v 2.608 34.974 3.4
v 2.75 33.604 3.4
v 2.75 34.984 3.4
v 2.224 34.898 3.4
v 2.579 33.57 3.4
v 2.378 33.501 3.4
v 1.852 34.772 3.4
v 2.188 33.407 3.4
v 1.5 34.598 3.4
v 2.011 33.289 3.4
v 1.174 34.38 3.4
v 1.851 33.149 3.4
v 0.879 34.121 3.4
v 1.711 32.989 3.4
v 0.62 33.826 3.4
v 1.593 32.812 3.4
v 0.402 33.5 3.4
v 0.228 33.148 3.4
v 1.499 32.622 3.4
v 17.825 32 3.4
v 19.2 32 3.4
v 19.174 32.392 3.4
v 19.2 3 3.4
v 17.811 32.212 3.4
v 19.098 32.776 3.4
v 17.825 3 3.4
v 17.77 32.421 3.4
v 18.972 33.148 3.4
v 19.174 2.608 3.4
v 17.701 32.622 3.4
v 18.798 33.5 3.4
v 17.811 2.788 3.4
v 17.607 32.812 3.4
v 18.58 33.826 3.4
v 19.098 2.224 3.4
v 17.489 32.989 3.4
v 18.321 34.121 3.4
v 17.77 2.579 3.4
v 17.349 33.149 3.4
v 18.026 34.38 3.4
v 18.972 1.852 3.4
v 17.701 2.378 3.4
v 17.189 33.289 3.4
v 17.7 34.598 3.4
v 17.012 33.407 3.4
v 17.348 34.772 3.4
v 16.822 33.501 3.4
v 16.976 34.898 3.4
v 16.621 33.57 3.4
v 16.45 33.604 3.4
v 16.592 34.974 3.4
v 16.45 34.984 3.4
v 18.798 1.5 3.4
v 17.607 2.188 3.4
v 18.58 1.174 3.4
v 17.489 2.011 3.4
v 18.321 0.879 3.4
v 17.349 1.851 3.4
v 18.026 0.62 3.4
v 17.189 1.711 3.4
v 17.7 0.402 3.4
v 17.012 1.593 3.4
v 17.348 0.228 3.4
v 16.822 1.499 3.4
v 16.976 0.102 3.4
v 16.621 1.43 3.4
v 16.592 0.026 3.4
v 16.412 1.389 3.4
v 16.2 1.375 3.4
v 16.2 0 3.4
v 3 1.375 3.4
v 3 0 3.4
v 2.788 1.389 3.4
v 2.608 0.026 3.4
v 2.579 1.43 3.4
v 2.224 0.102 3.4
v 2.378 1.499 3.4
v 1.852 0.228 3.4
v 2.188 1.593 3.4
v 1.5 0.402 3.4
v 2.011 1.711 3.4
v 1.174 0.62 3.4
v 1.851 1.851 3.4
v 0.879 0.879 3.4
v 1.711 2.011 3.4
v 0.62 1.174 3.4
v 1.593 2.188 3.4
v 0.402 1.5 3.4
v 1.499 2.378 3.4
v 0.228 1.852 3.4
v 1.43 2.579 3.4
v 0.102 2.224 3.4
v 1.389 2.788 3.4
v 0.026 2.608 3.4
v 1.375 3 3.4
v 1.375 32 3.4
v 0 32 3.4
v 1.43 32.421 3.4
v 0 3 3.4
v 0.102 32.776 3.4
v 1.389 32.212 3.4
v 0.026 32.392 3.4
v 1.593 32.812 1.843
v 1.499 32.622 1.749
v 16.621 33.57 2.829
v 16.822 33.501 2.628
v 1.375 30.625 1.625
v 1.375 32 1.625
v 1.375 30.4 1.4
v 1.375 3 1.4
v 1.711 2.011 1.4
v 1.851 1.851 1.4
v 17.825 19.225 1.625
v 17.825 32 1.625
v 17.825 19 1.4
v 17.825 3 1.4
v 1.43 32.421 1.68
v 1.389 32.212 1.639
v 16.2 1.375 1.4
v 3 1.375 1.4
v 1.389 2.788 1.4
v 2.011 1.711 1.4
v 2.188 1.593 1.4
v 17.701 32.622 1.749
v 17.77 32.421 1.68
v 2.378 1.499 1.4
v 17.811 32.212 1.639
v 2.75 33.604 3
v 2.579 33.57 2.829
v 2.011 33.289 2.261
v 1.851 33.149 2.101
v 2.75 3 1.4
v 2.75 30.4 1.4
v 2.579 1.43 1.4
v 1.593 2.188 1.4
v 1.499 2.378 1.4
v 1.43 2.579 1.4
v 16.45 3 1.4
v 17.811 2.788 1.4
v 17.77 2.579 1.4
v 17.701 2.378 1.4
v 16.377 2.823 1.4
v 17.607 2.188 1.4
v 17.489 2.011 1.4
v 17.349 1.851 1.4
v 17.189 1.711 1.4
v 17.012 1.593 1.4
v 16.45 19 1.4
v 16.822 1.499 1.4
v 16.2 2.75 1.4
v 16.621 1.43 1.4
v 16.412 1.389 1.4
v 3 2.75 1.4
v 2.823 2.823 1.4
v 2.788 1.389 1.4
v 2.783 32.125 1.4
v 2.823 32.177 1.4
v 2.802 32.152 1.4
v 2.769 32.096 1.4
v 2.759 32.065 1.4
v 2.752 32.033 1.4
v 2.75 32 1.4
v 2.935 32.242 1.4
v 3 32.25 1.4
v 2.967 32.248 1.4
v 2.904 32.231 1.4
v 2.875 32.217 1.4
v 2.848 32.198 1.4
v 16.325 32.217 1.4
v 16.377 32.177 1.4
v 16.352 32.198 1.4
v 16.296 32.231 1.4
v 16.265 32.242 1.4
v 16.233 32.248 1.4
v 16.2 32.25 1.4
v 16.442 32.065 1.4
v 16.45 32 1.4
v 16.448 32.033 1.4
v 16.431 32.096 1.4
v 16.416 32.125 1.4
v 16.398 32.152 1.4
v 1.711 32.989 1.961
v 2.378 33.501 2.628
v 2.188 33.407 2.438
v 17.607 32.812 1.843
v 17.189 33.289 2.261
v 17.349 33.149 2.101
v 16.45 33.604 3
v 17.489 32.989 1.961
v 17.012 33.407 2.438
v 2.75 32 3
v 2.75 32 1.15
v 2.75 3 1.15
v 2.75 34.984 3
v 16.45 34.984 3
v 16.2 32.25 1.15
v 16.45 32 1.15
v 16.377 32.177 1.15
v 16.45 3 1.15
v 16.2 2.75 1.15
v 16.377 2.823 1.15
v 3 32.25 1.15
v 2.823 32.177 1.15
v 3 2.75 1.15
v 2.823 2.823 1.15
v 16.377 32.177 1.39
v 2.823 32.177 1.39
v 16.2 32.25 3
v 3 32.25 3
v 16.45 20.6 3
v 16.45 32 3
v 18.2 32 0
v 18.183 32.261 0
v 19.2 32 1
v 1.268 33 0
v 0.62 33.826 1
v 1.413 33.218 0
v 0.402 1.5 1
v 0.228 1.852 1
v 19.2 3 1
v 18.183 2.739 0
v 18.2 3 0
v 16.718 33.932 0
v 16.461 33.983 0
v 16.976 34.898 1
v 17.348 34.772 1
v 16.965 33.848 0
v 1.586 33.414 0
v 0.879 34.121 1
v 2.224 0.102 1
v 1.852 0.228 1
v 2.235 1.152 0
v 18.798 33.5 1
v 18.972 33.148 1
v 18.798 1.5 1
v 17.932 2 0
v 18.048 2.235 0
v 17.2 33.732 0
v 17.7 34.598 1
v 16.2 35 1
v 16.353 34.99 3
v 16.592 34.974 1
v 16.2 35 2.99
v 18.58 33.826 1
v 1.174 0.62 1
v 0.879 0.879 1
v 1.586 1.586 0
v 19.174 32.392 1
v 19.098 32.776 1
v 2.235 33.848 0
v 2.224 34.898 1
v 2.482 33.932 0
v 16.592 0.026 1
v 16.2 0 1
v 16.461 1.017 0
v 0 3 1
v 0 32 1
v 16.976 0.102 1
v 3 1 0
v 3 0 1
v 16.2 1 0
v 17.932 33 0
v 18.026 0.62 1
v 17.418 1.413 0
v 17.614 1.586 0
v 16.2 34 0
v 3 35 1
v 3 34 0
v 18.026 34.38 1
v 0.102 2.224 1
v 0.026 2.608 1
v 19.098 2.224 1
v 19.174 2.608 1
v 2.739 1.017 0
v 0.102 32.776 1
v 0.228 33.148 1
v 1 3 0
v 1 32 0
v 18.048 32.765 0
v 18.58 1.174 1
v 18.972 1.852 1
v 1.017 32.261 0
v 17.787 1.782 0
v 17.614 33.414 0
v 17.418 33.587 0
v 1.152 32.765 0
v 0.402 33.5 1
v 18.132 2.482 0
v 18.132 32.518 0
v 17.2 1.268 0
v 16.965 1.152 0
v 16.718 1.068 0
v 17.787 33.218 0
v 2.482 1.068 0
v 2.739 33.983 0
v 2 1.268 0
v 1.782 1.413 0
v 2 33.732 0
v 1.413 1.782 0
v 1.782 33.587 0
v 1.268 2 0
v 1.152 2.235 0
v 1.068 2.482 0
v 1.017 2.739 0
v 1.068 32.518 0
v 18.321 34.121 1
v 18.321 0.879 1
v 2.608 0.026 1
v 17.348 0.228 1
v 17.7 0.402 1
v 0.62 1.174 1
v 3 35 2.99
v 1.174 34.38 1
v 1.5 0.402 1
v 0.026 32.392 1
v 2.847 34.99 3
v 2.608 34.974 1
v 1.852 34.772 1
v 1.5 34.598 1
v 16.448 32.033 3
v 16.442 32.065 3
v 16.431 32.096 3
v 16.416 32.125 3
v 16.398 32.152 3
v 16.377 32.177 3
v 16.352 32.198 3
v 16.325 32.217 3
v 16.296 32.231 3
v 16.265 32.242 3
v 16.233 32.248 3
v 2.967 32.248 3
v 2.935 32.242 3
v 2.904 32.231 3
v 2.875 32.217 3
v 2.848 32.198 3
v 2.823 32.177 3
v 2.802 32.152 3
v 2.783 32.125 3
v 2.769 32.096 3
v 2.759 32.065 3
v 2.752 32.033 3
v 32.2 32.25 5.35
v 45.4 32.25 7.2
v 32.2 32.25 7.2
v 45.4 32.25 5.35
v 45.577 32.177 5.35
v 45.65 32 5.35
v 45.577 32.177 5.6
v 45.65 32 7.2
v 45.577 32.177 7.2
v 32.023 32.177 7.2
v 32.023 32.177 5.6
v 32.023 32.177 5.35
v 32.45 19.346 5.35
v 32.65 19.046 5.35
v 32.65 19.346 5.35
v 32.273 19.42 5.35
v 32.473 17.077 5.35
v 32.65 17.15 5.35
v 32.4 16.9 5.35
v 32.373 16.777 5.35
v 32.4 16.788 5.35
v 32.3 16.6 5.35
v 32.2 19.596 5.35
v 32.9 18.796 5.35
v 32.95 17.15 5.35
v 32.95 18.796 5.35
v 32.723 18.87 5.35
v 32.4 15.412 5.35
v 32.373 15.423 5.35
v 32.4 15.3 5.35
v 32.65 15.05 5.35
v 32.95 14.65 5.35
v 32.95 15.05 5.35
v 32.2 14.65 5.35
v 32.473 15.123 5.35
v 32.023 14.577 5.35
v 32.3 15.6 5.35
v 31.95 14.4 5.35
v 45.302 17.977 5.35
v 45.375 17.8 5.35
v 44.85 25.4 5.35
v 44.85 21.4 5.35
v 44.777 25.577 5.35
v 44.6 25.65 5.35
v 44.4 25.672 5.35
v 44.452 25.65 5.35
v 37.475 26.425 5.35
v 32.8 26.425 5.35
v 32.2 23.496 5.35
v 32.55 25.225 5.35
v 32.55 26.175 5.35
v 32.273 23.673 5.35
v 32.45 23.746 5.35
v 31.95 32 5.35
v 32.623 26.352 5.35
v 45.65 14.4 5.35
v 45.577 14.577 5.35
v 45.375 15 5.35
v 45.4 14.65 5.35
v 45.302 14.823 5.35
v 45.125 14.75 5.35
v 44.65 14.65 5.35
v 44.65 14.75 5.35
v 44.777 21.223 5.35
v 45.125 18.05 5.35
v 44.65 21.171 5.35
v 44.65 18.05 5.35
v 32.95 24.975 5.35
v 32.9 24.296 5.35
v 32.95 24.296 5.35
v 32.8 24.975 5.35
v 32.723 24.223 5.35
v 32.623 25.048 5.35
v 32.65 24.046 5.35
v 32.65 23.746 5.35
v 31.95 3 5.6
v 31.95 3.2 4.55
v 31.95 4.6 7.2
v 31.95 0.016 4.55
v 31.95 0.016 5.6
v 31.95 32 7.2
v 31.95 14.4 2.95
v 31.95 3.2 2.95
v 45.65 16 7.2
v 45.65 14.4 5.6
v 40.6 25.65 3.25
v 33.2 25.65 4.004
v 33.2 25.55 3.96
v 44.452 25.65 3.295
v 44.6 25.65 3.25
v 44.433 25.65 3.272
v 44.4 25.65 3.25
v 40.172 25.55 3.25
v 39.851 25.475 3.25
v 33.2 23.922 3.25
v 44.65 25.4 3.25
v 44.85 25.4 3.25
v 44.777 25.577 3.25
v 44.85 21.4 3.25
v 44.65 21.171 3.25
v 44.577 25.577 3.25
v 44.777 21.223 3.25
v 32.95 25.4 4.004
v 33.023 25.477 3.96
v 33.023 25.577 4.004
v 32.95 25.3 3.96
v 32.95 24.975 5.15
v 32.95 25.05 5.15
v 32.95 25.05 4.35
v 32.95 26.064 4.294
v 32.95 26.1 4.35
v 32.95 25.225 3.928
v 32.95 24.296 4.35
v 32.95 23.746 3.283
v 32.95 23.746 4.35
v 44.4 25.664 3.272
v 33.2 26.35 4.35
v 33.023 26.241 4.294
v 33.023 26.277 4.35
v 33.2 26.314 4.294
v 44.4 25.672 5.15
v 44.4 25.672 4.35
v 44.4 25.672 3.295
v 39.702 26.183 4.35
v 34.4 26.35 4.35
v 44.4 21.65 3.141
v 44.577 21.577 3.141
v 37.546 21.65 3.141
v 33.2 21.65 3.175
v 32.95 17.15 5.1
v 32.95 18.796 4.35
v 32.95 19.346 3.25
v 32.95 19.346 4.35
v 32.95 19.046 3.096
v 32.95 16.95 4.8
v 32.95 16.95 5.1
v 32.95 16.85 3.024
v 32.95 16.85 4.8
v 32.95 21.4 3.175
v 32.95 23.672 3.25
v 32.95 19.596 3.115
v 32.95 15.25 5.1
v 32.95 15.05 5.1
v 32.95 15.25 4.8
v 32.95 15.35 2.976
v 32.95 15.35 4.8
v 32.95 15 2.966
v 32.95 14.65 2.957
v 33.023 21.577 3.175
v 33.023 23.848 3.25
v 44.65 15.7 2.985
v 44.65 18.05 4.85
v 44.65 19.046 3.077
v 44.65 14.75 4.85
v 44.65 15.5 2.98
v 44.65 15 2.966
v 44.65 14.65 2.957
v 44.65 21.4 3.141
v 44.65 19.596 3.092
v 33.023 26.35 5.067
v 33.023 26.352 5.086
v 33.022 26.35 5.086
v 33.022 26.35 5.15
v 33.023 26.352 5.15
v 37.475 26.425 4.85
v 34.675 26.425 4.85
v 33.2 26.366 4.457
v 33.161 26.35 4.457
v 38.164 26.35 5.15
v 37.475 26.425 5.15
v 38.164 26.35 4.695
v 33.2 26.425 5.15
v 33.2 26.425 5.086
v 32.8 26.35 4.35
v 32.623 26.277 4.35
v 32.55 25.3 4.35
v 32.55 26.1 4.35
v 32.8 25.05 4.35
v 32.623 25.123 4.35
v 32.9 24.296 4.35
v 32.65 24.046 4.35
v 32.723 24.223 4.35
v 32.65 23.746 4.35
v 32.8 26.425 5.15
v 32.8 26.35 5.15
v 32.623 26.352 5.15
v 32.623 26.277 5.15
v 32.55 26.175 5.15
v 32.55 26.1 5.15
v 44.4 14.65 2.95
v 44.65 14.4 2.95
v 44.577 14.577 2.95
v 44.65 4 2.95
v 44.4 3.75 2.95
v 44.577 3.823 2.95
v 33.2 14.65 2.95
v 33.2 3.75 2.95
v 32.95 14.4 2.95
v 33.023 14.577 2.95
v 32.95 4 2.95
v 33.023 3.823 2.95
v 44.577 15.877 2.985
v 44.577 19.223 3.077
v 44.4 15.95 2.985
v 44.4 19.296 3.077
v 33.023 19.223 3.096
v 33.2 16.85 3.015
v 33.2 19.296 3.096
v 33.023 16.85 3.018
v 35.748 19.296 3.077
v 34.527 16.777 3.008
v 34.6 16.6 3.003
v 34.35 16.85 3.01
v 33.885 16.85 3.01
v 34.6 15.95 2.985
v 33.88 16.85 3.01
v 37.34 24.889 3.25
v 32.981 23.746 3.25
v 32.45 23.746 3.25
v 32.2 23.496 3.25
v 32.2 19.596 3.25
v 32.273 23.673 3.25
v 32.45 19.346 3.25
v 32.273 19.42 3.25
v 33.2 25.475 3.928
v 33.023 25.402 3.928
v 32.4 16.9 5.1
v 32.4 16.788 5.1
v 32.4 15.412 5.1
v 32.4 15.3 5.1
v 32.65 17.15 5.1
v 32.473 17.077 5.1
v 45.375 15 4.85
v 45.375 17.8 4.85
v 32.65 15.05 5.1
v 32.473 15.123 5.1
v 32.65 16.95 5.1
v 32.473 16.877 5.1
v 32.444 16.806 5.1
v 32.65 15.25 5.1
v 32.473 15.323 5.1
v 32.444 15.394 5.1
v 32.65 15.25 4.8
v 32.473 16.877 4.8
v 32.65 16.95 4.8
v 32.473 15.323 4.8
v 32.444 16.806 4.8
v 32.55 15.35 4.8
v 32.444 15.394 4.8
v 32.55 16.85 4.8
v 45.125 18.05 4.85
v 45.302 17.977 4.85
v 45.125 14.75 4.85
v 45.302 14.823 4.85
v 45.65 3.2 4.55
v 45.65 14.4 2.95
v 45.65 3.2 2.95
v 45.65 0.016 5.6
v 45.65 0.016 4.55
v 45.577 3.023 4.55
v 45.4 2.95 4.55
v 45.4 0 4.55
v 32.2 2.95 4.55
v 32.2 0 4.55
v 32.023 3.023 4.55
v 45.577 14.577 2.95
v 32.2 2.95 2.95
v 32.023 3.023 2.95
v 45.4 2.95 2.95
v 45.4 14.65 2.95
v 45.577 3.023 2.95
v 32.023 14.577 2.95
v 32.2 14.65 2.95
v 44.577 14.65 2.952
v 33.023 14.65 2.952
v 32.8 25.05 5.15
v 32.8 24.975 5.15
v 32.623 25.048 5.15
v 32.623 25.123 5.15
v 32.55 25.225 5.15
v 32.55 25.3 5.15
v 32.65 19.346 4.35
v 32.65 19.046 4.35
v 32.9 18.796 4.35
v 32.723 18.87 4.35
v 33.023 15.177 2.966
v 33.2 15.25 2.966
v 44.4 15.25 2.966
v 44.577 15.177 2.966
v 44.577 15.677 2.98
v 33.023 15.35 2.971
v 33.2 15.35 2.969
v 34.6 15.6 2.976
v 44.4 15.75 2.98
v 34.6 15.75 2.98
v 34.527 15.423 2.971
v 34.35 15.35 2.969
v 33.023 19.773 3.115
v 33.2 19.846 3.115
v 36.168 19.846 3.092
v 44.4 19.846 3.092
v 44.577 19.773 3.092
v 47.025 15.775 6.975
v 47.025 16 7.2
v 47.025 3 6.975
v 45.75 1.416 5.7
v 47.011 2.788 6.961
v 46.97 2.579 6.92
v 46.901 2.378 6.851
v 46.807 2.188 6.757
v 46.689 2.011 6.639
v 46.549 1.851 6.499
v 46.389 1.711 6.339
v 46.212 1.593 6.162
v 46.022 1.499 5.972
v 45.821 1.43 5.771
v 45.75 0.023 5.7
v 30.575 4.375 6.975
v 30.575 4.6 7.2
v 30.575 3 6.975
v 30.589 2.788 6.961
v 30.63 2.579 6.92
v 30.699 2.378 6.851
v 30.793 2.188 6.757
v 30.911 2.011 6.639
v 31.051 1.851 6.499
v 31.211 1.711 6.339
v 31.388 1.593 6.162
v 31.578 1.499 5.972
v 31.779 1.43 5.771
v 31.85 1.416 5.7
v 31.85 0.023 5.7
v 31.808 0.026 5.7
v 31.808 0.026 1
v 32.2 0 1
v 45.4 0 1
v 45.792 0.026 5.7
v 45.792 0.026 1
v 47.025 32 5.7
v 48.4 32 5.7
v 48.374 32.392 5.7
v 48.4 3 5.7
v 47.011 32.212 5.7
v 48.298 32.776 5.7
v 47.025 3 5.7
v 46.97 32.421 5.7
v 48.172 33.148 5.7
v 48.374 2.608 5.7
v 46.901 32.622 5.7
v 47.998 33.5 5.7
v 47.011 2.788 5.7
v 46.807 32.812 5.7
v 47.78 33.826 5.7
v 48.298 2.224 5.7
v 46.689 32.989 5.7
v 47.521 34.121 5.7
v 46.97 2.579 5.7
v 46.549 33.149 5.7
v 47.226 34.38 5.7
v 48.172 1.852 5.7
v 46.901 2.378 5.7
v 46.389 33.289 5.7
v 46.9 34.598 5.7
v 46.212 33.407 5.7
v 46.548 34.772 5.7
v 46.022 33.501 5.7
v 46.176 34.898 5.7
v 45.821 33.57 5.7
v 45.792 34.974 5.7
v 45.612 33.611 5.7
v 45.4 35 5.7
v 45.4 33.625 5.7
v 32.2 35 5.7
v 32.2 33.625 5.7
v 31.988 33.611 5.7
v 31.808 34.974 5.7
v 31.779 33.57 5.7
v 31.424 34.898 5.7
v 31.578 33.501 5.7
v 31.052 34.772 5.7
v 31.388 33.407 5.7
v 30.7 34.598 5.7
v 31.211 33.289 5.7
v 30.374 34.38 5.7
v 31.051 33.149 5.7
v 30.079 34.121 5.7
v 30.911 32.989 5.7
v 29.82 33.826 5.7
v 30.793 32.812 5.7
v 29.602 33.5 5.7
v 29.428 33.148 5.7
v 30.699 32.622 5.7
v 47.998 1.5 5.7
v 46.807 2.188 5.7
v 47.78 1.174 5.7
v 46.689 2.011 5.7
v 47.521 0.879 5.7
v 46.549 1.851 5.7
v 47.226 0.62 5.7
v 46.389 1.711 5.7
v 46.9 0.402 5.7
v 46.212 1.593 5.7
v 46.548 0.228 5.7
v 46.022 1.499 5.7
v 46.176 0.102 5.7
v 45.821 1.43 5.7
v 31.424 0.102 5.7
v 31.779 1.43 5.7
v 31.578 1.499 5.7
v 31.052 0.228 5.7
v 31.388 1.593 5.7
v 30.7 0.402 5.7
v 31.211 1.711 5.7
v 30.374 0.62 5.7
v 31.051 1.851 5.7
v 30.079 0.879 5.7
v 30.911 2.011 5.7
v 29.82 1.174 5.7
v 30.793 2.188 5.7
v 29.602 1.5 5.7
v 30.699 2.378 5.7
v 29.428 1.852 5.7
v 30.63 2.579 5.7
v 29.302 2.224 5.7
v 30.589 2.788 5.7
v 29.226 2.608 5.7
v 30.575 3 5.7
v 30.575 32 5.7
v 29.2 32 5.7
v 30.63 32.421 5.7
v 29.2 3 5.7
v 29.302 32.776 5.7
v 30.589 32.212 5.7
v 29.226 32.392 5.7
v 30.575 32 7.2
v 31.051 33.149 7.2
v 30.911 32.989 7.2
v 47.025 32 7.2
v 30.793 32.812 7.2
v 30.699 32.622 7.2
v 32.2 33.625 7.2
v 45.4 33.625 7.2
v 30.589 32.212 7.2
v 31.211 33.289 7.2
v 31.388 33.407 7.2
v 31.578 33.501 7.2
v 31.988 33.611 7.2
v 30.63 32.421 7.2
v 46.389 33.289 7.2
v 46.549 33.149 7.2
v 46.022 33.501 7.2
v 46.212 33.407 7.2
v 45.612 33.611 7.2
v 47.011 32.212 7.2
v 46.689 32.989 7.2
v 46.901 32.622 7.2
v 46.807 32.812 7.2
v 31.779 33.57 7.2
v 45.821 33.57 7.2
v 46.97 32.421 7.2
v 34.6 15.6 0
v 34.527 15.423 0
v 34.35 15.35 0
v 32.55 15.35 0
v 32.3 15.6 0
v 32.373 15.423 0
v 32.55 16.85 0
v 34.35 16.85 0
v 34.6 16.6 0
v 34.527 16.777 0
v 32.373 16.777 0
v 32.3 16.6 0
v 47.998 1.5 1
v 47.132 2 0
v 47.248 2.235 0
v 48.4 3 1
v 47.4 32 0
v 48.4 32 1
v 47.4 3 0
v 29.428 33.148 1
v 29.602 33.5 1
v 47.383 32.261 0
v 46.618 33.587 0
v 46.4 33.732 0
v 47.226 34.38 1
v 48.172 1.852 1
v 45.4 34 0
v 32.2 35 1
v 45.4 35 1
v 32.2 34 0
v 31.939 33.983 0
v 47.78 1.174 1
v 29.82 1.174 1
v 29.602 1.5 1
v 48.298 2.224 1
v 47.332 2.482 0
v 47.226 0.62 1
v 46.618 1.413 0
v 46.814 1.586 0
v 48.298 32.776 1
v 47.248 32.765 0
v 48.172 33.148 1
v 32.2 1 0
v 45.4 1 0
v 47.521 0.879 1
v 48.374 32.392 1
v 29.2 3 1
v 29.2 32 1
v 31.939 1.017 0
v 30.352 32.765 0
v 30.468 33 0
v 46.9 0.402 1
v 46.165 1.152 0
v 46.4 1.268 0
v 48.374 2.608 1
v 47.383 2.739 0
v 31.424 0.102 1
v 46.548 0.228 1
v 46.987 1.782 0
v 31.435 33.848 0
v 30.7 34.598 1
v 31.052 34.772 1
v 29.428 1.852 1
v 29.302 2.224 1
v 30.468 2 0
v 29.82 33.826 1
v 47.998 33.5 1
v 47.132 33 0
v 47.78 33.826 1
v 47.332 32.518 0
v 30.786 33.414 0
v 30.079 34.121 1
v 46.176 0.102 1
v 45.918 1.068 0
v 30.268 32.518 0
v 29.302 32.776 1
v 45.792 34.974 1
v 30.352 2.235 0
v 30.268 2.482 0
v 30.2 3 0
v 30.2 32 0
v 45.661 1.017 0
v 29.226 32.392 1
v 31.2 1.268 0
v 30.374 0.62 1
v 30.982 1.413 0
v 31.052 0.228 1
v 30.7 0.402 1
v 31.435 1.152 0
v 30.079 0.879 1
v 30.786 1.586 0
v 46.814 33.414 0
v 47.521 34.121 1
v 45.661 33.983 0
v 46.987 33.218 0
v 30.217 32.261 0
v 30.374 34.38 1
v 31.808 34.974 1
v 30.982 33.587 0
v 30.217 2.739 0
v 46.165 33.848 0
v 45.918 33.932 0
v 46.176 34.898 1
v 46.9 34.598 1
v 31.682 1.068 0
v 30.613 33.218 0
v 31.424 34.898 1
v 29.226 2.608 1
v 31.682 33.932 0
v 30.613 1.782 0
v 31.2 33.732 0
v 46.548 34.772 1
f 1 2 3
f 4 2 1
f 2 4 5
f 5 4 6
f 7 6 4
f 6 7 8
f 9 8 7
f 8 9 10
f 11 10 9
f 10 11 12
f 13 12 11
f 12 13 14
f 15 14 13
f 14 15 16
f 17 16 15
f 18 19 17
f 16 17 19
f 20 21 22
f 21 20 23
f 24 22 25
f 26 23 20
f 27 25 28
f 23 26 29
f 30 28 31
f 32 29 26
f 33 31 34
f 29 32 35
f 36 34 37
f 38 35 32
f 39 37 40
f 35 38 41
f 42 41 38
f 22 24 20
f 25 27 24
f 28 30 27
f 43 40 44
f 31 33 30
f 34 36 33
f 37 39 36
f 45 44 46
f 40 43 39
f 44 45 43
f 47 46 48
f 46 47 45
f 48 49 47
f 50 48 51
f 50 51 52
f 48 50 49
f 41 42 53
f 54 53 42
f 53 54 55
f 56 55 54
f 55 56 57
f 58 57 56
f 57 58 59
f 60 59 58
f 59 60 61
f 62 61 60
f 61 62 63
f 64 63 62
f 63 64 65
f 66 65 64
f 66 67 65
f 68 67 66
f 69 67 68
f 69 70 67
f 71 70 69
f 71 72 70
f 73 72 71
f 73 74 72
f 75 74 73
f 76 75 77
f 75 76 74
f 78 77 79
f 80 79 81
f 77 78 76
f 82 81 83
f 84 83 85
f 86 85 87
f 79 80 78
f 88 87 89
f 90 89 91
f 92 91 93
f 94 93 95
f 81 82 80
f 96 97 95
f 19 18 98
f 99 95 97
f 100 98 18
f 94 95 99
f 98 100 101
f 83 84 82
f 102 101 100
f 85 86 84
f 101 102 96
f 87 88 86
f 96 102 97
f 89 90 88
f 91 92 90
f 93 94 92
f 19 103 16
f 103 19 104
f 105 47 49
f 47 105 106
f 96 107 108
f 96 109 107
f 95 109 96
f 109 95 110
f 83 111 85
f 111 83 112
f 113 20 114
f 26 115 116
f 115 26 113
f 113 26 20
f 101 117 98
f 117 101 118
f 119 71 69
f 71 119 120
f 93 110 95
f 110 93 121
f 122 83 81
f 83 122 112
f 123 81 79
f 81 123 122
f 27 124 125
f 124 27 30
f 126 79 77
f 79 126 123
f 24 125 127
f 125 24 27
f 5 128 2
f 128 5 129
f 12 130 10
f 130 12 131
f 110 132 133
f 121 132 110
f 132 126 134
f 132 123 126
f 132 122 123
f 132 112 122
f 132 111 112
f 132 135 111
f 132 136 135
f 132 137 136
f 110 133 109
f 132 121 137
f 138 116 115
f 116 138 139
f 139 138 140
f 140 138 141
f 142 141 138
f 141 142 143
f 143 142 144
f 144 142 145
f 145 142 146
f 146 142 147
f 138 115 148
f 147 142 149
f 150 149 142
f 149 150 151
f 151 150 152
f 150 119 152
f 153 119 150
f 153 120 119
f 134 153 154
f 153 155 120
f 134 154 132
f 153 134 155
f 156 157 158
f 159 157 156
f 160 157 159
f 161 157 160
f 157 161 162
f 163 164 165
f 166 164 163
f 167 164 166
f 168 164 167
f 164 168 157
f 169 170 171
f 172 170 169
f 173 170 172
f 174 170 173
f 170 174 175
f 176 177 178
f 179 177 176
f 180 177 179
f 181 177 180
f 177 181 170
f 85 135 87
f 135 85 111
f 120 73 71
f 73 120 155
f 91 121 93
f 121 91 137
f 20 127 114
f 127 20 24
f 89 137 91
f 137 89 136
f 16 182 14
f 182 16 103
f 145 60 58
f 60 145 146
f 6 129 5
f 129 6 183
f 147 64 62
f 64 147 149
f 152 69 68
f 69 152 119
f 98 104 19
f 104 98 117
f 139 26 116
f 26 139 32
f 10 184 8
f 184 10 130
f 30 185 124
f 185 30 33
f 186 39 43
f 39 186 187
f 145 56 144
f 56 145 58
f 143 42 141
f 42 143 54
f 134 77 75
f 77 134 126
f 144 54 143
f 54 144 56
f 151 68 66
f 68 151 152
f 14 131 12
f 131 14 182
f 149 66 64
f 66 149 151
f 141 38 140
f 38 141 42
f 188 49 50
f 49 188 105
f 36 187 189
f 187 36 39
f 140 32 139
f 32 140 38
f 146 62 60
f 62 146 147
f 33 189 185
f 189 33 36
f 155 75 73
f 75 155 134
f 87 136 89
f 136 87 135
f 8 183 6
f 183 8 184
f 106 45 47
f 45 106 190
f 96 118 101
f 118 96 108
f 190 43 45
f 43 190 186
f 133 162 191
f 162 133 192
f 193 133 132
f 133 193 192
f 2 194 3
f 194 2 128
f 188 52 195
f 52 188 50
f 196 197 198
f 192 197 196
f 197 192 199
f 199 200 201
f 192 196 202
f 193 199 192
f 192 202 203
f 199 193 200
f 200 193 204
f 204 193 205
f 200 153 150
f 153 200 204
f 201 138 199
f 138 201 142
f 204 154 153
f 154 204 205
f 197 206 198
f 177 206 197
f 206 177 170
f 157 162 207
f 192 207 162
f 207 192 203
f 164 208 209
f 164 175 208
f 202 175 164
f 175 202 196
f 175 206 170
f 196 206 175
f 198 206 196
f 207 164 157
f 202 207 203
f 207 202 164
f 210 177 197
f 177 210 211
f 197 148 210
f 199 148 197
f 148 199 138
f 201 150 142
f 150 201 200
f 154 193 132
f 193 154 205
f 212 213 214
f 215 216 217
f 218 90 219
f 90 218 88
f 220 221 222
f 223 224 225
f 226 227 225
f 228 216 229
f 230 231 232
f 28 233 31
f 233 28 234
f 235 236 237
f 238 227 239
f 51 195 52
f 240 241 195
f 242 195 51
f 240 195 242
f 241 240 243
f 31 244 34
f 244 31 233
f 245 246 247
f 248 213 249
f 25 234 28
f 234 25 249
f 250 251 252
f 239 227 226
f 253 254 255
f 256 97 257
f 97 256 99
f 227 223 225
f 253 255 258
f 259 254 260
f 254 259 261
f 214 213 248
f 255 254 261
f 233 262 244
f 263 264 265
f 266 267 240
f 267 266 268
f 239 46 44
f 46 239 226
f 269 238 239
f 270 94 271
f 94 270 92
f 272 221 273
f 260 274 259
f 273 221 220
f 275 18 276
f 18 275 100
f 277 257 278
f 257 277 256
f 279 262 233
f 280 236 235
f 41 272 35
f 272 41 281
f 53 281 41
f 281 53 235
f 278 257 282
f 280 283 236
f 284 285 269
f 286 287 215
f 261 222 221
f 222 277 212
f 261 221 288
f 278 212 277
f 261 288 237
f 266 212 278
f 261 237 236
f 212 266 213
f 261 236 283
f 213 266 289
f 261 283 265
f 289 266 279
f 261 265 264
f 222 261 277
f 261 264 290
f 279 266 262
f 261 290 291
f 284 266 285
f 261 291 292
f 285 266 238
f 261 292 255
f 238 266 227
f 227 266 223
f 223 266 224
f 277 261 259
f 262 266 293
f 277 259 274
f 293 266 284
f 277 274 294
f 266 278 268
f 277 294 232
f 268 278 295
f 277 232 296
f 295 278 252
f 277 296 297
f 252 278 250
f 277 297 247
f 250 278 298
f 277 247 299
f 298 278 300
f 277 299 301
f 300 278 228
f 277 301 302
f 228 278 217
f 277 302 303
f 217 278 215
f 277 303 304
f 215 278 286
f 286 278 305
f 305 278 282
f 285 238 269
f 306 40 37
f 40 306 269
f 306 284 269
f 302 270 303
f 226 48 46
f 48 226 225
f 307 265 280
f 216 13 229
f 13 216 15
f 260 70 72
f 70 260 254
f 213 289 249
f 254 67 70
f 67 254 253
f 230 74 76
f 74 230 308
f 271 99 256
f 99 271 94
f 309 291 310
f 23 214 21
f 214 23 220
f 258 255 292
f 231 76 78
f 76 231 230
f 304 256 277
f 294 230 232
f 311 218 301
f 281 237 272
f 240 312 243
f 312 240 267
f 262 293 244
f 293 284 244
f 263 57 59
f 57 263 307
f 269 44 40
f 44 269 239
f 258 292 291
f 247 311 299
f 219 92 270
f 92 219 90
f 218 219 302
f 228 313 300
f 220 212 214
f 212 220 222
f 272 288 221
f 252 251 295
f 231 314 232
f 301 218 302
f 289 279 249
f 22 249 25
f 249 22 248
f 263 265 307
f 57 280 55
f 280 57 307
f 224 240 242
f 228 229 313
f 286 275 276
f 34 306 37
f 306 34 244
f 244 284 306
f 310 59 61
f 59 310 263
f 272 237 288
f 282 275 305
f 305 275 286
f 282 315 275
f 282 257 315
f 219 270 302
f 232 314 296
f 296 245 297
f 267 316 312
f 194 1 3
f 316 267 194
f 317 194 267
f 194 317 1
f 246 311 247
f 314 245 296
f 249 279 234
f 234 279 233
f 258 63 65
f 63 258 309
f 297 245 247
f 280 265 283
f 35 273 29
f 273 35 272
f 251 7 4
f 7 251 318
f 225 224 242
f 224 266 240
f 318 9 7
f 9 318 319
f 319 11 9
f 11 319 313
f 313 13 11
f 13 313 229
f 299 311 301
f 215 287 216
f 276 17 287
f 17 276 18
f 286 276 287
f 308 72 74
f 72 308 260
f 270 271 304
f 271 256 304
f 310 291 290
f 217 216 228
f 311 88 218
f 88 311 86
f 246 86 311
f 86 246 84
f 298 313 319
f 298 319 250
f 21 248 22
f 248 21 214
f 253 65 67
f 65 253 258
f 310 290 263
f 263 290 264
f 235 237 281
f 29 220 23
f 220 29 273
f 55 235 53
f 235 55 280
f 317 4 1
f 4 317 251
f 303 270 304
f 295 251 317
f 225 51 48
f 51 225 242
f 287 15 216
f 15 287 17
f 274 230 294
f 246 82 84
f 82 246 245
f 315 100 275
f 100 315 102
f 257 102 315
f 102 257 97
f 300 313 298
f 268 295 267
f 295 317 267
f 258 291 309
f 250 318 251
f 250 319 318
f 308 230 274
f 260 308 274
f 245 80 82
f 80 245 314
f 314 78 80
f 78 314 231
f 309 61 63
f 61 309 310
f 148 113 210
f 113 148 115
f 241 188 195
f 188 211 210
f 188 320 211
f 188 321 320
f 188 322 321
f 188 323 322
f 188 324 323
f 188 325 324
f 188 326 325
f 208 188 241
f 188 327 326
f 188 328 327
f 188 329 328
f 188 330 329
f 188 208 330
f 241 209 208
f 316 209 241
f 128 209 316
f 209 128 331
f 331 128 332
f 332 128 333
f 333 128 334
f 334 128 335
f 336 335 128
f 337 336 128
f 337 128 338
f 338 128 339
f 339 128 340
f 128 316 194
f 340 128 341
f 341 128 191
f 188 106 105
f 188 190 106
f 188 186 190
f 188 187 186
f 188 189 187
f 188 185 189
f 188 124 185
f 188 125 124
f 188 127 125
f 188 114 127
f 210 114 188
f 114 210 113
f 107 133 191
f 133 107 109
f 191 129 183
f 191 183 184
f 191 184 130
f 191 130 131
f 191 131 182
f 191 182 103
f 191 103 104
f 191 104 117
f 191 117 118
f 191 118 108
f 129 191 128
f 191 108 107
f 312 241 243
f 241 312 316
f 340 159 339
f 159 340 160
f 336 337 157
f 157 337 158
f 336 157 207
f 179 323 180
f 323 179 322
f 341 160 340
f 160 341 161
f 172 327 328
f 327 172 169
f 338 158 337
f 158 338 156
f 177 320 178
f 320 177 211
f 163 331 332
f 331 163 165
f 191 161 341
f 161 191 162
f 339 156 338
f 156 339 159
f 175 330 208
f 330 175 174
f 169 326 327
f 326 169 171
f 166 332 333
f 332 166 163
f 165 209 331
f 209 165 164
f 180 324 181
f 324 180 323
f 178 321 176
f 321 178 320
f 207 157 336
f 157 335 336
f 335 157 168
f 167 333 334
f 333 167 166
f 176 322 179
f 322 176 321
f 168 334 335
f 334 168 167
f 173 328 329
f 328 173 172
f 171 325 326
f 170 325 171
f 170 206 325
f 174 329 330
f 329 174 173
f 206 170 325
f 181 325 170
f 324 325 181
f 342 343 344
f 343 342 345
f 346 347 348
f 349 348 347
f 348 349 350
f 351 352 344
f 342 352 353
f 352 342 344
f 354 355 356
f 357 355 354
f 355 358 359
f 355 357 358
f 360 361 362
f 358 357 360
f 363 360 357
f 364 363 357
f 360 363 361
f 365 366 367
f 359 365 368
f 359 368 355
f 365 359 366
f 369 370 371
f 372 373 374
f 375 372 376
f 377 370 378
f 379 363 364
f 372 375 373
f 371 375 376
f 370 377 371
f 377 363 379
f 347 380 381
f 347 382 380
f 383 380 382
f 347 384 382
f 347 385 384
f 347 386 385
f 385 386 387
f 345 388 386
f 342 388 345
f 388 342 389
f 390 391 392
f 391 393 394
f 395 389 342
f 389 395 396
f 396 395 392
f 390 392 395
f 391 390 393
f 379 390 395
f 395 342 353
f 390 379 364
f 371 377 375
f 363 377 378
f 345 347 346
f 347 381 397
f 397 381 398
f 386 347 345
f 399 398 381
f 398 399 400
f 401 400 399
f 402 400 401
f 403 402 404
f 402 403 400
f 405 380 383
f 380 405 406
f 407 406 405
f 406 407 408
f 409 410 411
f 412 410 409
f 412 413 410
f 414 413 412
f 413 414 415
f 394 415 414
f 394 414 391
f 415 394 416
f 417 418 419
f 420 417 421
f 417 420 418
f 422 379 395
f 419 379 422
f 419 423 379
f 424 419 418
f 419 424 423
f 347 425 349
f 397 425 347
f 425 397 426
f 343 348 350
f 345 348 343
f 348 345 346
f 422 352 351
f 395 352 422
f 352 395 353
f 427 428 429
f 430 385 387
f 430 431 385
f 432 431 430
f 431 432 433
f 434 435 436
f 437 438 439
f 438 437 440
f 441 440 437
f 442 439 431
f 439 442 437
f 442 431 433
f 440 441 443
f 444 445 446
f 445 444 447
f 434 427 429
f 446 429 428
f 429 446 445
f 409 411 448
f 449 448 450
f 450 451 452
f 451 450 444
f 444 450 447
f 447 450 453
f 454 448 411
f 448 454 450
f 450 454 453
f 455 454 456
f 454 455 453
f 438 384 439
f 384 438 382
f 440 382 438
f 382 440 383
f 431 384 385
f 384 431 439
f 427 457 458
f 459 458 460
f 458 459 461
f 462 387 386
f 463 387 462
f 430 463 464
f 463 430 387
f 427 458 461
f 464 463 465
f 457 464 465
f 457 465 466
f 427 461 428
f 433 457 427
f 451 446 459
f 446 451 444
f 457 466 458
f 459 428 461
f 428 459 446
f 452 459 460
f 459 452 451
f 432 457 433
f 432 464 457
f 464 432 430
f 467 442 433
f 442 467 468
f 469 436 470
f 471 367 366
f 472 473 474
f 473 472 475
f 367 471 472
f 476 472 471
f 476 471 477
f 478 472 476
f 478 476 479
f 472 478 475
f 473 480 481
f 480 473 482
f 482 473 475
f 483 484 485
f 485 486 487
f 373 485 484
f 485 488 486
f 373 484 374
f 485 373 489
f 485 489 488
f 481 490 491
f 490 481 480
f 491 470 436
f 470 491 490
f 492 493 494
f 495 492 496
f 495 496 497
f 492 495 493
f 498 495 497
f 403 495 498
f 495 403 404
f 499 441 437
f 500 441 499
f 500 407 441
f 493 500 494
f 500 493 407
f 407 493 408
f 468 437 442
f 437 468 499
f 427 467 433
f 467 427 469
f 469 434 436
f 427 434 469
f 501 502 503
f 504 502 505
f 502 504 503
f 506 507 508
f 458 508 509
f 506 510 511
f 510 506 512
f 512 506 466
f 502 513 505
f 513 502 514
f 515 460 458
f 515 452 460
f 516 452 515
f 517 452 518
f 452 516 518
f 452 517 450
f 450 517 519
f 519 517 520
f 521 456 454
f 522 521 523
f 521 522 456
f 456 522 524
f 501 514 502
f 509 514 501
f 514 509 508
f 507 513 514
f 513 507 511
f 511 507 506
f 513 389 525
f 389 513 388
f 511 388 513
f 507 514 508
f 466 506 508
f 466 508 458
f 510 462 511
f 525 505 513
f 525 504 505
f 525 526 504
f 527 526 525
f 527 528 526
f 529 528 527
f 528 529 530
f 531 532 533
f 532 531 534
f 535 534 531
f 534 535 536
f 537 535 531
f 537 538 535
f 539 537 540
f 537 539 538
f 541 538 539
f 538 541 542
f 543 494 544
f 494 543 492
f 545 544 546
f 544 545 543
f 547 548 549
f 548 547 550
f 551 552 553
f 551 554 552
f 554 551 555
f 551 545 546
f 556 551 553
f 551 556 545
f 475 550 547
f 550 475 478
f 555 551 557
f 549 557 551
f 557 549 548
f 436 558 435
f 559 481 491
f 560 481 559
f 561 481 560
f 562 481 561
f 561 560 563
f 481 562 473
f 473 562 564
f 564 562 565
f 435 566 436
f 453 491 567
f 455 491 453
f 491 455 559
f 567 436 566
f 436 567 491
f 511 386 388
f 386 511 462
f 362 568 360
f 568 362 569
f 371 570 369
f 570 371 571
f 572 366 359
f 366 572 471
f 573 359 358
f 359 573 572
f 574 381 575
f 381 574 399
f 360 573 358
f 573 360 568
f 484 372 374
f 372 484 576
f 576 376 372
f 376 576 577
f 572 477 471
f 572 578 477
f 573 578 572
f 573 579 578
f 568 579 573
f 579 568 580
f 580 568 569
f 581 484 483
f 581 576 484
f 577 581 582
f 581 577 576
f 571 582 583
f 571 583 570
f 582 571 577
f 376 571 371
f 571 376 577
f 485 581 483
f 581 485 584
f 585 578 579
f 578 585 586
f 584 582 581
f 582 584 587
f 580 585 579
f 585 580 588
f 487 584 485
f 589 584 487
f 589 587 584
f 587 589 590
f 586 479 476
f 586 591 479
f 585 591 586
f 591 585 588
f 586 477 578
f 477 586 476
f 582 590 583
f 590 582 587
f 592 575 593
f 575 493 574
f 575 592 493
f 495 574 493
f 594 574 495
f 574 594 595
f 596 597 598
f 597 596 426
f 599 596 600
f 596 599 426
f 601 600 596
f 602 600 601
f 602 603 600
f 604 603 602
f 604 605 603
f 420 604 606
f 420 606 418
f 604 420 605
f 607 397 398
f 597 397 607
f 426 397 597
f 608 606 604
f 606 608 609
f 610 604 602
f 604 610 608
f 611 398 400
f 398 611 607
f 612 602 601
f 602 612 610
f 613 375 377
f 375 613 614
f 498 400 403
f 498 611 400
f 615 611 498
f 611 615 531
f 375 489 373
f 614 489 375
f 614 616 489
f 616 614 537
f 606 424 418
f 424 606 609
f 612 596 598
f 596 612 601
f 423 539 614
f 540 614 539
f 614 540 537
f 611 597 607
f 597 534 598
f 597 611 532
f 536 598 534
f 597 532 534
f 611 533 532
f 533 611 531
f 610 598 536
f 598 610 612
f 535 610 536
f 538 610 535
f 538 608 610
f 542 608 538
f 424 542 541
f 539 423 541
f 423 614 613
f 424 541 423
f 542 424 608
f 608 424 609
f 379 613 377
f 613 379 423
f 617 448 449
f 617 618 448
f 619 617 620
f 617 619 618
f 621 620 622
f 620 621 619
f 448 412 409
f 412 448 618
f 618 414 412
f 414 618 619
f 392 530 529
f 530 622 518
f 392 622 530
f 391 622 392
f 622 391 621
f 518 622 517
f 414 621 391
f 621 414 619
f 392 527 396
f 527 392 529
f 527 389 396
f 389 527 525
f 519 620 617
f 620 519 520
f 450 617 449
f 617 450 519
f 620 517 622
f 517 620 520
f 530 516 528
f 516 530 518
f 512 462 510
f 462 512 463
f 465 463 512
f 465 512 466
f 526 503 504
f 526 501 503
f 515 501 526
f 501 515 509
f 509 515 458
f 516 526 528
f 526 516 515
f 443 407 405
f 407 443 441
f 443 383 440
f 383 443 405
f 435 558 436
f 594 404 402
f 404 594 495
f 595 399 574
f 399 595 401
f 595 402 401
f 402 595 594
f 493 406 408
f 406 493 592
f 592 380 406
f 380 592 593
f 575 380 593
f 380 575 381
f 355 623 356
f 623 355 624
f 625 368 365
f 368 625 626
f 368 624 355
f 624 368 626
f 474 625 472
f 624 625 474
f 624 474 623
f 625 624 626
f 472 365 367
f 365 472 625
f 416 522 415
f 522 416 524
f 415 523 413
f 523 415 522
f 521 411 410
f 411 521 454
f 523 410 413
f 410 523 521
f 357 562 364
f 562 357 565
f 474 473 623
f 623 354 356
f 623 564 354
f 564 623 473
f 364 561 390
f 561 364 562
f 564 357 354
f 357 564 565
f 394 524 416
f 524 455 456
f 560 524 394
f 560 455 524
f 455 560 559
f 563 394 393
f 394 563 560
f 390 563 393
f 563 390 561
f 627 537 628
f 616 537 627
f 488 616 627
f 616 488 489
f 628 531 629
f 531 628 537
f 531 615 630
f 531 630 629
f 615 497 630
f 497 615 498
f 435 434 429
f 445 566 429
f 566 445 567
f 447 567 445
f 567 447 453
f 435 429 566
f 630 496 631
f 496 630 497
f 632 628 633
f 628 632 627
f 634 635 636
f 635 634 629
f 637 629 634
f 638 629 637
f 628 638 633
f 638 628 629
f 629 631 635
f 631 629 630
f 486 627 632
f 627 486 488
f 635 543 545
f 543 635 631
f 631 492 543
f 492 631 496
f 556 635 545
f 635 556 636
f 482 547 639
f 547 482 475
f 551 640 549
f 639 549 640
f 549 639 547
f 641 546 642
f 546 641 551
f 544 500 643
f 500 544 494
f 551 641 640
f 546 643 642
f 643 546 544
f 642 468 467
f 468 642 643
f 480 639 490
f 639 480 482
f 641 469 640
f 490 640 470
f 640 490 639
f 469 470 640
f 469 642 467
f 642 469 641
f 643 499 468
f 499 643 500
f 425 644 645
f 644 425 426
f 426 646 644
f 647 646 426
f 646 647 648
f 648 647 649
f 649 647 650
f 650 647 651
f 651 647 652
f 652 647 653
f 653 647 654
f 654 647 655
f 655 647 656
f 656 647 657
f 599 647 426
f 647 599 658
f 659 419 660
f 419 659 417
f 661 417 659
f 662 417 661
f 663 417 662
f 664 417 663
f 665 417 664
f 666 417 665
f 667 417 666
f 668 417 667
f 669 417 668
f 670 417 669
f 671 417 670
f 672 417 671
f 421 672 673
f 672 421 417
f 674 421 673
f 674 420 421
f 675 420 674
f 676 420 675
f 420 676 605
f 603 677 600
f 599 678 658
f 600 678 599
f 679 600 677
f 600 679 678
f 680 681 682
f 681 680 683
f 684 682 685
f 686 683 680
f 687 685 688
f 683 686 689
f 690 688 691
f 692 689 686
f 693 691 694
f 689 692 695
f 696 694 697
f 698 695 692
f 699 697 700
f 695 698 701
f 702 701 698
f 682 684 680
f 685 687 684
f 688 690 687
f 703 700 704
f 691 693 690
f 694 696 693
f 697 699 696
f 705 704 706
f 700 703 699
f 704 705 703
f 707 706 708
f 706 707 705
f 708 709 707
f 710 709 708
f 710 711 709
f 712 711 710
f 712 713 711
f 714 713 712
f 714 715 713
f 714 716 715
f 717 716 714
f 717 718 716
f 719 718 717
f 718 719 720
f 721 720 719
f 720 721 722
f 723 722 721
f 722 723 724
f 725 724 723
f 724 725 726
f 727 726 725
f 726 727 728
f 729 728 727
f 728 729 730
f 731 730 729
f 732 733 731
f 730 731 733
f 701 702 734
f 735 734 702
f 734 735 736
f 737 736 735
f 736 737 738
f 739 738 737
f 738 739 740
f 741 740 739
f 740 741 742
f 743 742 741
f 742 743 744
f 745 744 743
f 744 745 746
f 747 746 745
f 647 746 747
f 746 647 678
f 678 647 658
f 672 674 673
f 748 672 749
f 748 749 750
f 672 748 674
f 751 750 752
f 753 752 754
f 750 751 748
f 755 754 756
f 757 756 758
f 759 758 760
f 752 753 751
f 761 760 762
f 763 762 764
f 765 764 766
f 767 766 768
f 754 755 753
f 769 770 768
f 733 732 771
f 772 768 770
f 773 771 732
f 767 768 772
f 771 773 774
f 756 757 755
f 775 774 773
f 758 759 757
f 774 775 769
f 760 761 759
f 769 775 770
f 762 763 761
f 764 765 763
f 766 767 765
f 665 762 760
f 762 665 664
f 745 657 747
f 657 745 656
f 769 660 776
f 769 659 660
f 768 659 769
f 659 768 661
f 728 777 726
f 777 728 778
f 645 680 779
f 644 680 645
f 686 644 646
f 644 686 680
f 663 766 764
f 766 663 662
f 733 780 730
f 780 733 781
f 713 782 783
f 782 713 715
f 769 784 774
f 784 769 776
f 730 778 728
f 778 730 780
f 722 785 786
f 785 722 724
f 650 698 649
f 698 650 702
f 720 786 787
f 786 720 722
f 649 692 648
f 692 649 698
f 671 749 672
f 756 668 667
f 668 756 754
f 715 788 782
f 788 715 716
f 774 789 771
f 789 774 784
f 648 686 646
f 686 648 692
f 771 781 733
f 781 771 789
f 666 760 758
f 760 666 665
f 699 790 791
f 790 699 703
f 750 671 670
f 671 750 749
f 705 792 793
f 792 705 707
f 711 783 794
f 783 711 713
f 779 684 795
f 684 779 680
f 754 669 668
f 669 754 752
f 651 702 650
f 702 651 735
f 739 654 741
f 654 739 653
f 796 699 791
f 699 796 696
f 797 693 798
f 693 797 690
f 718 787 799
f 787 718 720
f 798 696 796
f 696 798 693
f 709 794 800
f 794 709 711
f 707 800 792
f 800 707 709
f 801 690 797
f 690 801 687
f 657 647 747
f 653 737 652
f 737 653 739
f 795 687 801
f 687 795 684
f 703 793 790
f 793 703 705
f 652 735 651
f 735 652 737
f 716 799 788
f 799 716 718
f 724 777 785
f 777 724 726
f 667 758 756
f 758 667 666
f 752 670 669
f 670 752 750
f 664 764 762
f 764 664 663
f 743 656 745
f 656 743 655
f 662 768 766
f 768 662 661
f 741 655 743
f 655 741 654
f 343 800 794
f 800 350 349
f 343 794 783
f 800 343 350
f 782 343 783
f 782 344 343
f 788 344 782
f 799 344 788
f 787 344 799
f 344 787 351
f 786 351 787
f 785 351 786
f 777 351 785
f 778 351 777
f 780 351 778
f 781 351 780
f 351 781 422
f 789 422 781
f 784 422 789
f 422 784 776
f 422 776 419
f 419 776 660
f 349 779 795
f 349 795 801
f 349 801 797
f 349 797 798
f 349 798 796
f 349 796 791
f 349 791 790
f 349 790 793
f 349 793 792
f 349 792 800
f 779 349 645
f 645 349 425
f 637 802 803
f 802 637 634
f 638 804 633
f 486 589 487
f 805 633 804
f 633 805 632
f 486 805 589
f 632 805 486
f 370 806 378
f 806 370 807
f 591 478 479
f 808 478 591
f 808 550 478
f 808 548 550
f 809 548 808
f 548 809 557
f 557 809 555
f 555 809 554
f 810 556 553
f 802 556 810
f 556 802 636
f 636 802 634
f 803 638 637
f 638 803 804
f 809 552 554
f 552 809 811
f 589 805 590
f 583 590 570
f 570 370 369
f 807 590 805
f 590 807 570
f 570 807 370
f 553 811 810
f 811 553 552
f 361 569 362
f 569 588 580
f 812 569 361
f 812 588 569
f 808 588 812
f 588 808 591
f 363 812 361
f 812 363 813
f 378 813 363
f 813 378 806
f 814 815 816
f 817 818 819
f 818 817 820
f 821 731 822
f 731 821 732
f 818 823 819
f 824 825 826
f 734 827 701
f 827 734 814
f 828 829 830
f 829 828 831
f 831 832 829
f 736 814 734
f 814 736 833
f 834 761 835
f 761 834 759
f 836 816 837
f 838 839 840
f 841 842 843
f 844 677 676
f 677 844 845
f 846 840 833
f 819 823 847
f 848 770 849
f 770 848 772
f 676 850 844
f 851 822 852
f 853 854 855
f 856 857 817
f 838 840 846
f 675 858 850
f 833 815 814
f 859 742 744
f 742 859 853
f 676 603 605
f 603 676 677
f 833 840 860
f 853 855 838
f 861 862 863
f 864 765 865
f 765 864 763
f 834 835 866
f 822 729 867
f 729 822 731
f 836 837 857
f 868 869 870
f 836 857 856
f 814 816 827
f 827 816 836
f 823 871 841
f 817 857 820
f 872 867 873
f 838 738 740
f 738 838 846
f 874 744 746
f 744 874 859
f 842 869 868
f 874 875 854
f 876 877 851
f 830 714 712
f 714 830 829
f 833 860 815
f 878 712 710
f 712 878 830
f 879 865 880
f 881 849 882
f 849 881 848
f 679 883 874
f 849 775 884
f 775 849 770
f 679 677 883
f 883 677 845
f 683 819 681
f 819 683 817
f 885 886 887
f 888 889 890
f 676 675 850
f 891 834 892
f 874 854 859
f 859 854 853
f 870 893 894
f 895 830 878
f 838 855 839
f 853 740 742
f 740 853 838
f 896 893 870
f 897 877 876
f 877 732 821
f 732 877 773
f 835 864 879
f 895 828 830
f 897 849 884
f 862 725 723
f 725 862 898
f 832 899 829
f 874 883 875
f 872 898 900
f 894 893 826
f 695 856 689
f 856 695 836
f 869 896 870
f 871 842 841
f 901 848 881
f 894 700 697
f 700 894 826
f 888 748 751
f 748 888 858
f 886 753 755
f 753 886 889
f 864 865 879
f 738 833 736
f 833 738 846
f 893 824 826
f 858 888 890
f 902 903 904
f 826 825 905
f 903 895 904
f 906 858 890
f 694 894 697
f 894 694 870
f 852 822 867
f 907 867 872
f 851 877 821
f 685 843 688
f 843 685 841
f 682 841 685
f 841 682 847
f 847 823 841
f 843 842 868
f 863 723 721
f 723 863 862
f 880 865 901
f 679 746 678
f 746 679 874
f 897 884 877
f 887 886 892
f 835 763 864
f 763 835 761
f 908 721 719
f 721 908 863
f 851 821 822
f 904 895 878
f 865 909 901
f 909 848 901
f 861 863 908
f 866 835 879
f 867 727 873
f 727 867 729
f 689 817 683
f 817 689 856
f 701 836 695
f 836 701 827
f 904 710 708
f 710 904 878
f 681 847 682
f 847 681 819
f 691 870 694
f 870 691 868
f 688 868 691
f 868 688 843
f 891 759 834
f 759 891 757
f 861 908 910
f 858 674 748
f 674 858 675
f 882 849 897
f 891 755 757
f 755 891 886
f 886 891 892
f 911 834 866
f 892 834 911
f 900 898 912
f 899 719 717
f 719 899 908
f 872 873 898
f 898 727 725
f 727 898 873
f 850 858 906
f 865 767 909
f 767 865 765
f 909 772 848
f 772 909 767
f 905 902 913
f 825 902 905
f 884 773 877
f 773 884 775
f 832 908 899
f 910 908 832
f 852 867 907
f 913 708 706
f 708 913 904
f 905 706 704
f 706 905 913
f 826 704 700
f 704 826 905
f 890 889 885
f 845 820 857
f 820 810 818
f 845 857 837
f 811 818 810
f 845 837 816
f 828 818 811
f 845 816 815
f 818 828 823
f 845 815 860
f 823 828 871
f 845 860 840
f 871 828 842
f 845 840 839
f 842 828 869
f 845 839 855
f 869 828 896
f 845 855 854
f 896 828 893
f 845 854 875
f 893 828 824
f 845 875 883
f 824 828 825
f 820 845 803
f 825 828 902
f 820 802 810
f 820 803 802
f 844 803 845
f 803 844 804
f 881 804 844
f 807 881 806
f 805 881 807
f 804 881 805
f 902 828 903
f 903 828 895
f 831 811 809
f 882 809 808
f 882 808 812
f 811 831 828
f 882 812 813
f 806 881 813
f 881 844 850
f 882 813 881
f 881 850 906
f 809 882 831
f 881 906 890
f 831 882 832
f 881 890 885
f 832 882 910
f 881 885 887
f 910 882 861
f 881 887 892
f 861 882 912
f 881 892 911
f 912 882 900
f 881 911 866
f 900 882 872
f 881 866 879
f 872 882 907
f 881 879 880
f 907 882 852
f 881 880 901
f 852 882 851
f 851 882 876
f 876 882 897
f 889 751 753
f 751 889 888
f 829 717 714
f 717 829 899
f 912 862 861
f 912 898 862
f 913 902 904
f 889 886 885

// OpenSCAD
// Generated case design for PCB/Keypad2/Keypad2.kicad_pcb
// By https://github.com/revk/PCBCase
// Generated 2023-01-11 11:08:48
// title:	Generic ESP32 with GPIO
// date:	${DATE}
// rev:	5
// company:	Adrian Kennard Andrews & Arnold Ltd
// comment:	www.me.uk
// comment:	@TheRealRevK
//

// Globals
margin=0.500000;
overlap=2.000000;
lip=0.000000;
casebase=1.400000;
casetop=5.600000;
casewall=3.000000;
fit=0.000000;
edge=1.000000;
pcbthickness=1.600000;
nohull=false;
hullcap=1.000000;
hulledge=1.000000;
useredge=false;

module pcb(h=pcbthickness,r=0){linear_extrude(height=h)offset(r=r)polygon(points=[[0.000000,0.000000],[0.000000,29.000000],[13.200000,29.000000],[13.200000,0.000000]],paths=[[0,1,2,3]]);}

module outline(h=pcbthickness,r=0){linear_extrude(height=h)offset(r=r)polygon(points=[[0.000000,0.000000],[0.000000,29.000000],[13.200000,29.000000],[13.200000,0.000000]],paths=[[0,1,2,3]]);}
spacing=29.200000;
pcbwidth=13.200000;
pcblength=29.000000;
// Populated PCB
module board(pushed=false,hulled=false){
translate([6.850000,7.100000,1.600000])m0(pushed,hulled); // RevK:C_0805_ C_0805_2012Metric (back)
translate([3.875000,6.300000,1.600000])rotate([0,0,180.000000])m1(pushed,hulled); // RevK:R_0603 R_0603_1608Metric (back)
translate([10.150000,14.600000,1.600000])m2(pushed,hulled); // RevK:C_0603_ C_0603_1608Metric (back)
translate([5.400000,15.900000,1.600000])rotate([0,0,90.000000])m1(pushed,hulled); // RevK:R_0603 R_0603_1608Metric (back)
translate([6.600000,23.400000,1.600000])translate([0.000000,2.500000,0.000000])rotate([90.000000,-0.000000,-0.000000])m3(pushed,hulled); // RevK:ESP32-PICO-MINI-02 ESP32-PICO-MINI-02 (back)
translate([6.850000,13.350000,1.600000])m0(pushed,hulled); // RevK:C_0805_ C_0805_2012Metric (back)
// Missing RevK:Molex_MiniSPOX_H4V 22035045
translate([10.550000,16.400000,1.600000])m1(pushed,hulled); // RevK:R_0603 R_0603_1608Metric (back)
translate([2.700000,10.453494,1.600000])rotate([0,0,-90.000000])m5(pushed,hulled); // Package_SO:SO-8_3.9x4.9mm_P1.27mm SOIC-8_3.9x4.9mm_P1.27mm (back)
translate([7.230000,10.220000,1.600000])rotate([0,0,-90.000000])m6(pushed,hulled); // RevK:D_1206_ D_1206_3216Metric (back)
translate([1.250000,15.900000,1.600000])rotate([0,0,90.000000])translate([0.000000,-0.400000,0.000000])m7(pushed,hulled); // RevK:LED-RGB-1.6x1.6 LED_0603_1608Metric (back)
translate([1.250000,15.900000,1.600000])rotate([0,0,90.000000])translate([0.000000,0.400000,0.000000])m7(pushed,hulled); // RevK:LED-RGB-1.6x1.6 LED_0603_1608Metric (back)
translate([10.400000,12.500000,1.600000])rotate([0,0,-90.000000])rotate([-0.000000,-0.000000,-90.000000])m8(pushed,hulled); // RevK:SOT-23-Thin-6-Reg SOT-23-6 (back)
translate([12.450000,15.600000,1.600000])rotate([0,0,-90.000000])m1(pushed,hulled); // RevK:R_0603 R_0603_1608Metric (back)
translate([4.150000,15.900000,1.600000])rotate([0,0,90.000000])m1(pushed,hulled); // RevK:R_0603 R_0603_1608Metric (back)
translate([1.400000,6.300000,1.600000])m2(pushed,hulled); // RevK:C_0603_ C_0603_1608Metric (back)
translate([2.900000,15.900000,1.600000])rotate([0,0,90.000000])m1(pushed,hulled); // RevK:R_0603 R_0603_1608Metric (back)
translate([6.600000,15.900000,1.600000])rotate([0,0,-90.000000])m2(pushed,hulled); // RevK:C_0603_ C_0603_1608Metric (back)
translate([10.400000,8.600000,1.600000])rotate([0,0,90.000000])rotate([-0.000000,-0.000000,-90.000000])m9(pushed,hulled); // RevK:L_4x4_ TYA4020 (back)
}

module b(cx,cy,z,w,l,h){translate([cx-w/2,cy-l/2,z])cube([w,l,h]);}
module m0(pushed=false,hulled=false)
{ // RevK:C_0805_ C_0805_2012Metric
b(0,0,0,2,1.45,0.2); // Pad size
b(0,0,0,2,1.2,1); // Chip
}

module m1(pushed=false,hulled=false)
{ // RevK:R_0603 R_0603_1608Metric
b(0,0,0,2.8,0.95,0.5); // Pad size
}

module m2(pushed=false,hulled=false)
{ // RevK:C_0603_ C_0603_1608Metric
b(0,0,0,1.6,0.95,0.2); // Pad size
b(0,0,0,1.6,0.8,1); // Chip
}

module m3(pushed=false,hulled=false)
{ // RevK:ESP32-PICO-MINI-02 ESP32-PICO-MINI-02
rotate([-90,0,0])
translate([-13.2/2,-16.6/2,0])
{
	if(!hulled)cube([13.2,16.6,0.8]);
	cube([13.2,11.2,2.4]);
}
}

module m5(pushed=false,hulled=false)
{ // Package_SO:SO-8_3.9x4.9mm_P1.27mm SOIC-8_3.9x4.9mm_P1.27mm
b(0,0,0,5,4,1);
b(0,0,0,3.9,4.9,2.1);
}

module m6(pushed=false,hulled=false)
{ // RevK:D_1206_ D_1206_3216Metric
b(0,0,0,4.4,1.75,1.2); // Pad size
}

module m7(pushed=false,hulled=false)
{ // RevK:LED-RGB-1.6x1.6 LED_0603_1608Metric
b(0,0,0,1.6,0.8,0.25);
b(0,0,0,1.2,0.8,0.55);
b(0,0,0,0.8,0.8,0.95);
if(!hulled&&pushed)b(0,0,0,1,1,20);
}

module m8(pushed=false,hulled=false)
{ // RevK:SOT-23-Thin-6-Reg SOT-23-6
b(0,0,0,3.05,3.05,0.5);
b(0,0,0,1.45,3.05,1.1);
}

module m9(pushed=false,hulled=false)
{ // RevK:L_4x4_ TYA4020
b(0,0,0,4,4,2.1);
}

height=casebase+pcbthickness+casetop;
$fn=48;

module boardh(pushed=false)
{ // Board with hulled parts
	union()
	{
		if(!nohull)intersection()
		{
			translate([0,0,hullcap-casebase])outline(casebase+pcbthickness+casetop-hullcap*2,-hulledge);
			hull()board(pushed,true);
		}
		board(pushed,false);
		pcb();
	}
}

module boardf()
{ // This is the board, but stretched up to make a push out in from the front
	render()
	{
		intersection()
		{
			translate([-casewall-1,-casewall-1,-casebase-1]) cube([pcbwidth+casewall*2+2,pcblength+casewall*2+2,height+2]);
			union()
			{
				minkowski()
				{
					boardh(true);
					cylinder(h=height+100,d=margin,$fn=8);
				}
				board(false,false);
			}
		}
	}
}

module boardb()
{ // This is the board, but stretched down to make a push out in from the back
	render()
	{
		intersection()
		{
			translate([-casewall-1,-casewall-1,-casebase-1]) cube([pcbwidth+casewall*2+2,pcblength+casewall*2+2,height+2]);
			union()
			{
				minkowski()
				{
					boardh(true);
					translate([0,0,-height-100])
					cylinder(h=height+100,d=margin,$fn=8);
				}
				board(false,false);
			}
		}
	}
}

module boardm()
{
	render()
	{
 		minkowski()
 		{
			translate([0,0,-margin/2])cylinder(d=margin,h=margin,$fn=8);
 			boardh(false);
		}
		//intersection()
    		//{
        		//translate([0,0,-(casebase-hullcap)])pcb(pcbthickness+(casebase-hullcap)+(casetop-hullcap));
        		//translate([0,0,-(casebase-hullcap)])outline(pcbthickness+(casebase-hullcap)+(casetop-hullcap));
			boardh(false);
    		//}
 	}
}

module pcbh(h=pcbthickness,r=0)
{ // PCB shape for case
	if(useredge)outline(h,r);
	else hull()outline(h,r);
}

module pyramid()
{ // A pyramid
 polyhedron(points=[[0,0,0],[-height,-height,height],[-height,height,height],[height,height,height],[height,-height,height]],faces=[[0,1,2],[0,2,3],[0,3,4],[0,4,1],[4,3,2,1]]);
}

module wall(d=0)
{ // The case wall
    	translate([0,0,-casebase-d])pcbh(height+d*2,margin/2+d);
}

module cutf()
{ // This cut up from base in the wall
	intersection()
	{
		boardf();
		difference()
		{
			translate([-casewall+0.01,-casewall+0.01,-casebase+0.01])cube([pcbwidth+casewall*2-0.02,pcblength+casewall*2-0.02,casebase+overlap+lip]);
			wall();
			boardb();
		}
	}
}

module cutb()
{ // The cut down from top in the wall
	intersection()
	{
		boardb();
		difference()
		{
			translate([-casewall+0.01,-casewall+0.01,0.01])cube([pcbwidth+casewall*2-0.02,pcblength+casewall*2-0.02,casetop+pcbthickness]);
			wall();
			boardf();
		}
	}
}

module cutpf()
{ // the push up but pyramid
	render()
	intersection()
	{
		minkowski()
		{
			pyramid();
			cutf();
		}
		difference()
		{
			translate([-casewall-0.01,-casewall-0.01,-casebase-0.01])cube([pcbwidth+casewall*2+0.02,pcblength+casewall*2+0.02,casebase+overlap+lip+0.02]);
			wall();
			boardh(true);
		}
		translate([-casewall,-casewall,-casebase])case();
	}
}

module cutpb()
{ // the push down but pyramid
	render()
	intersection()
	{
		minkowski()
		{
			scale([1,1,-1])pyramid();
			cutb();
		}
		difference()
		{
			translate([-casewall-0.01,-casewall-0.01,-0.01])cube([pcbwidth+casewall*2+0.02,pcblength+casewall*2+0.02,casetop+pcbthickness+0.02]);
			wall();
			boardh(true);
		}
		translate([-casewall,-casewall,-casebase])case();
	}
}

module case()
{ // The basic case
	hull()
	{
		translate([casewall,casewall,0])pcbh(height,casewall-edge);
		translate([casewall,casewall,edge])pcbh(height-edge*2,casewall);
	}
}

module cut(d=0)
{ // The cut point in the wall
	translate([casewall,casewall,casebase+lip])pcbh(casetop+pcbthickness-lip+1,casewall/2+d/2+margin/4);
}

module base()
{ // The base
	difference()
	{
		case();
		difference()
		{
			union()
			{
				translate([-1,-1,casebase+overlap+lip])cube([pcbwidth+casewall*2+2,pcblength+casewall*2+2,casetop+1]);
				cut(fit);
			}
		}
		translate([casewall,casewall,casebase])boardf();
		translate([casewall,casewall,casebase])boardm();
		translate([casewall,casewall,casebase])cutpf();
	}
	translate([casewall,casewall,casebase])cutpb();
}

module top()
{
	translate([0,pcblength+casewall*2,height])rotate([180,0,0])
	{
		difference()
		{
			case();
			difference()
			{
				translate([-1,-1,-1])cube([pcbwidth+casewall*2+2,pcblength+casewall*2+2,casebase+overlap+lip-margin+1]);
				cut(-fit);
			}
			translate([casewall,casewall,casebase])boardb();
			translate([casewall,casewall,casebase])boardm();
			translate([casewall,casewall,casebase])cutpb();
		}
		translate([casewall,casewall,casebase])cutpf();
	}
}

module test()
{
	translate([0*spacing,0,0])base();
	translate([1*spacing,0,0])top();
	translate([2*spacing,0,0])pcb();
	translate([3*spacing,0,0])outline();
	translate([4*spacing,0,0])wall();
	translate([5*spacing,0,0])board();
	translate([6*spacing,0,0])board(false,true);
	translate([7*spacing,0,0])board(true);
	translate([8*spacing,0,0])boardh();
	translate([9*spacing,0,0])boardf();
	translate([10*spacing,0,0])boardb();
	translate([11*spacing,0,0])cutpf();
	translate([12*spacing,0,0])cutpb();
	translate([13*spacing,0,0])cutf();
	translate([14*spacing,0,0])cutb();
	translate([15*spacing,0,0])case();
}

module parts()
{
	base();
	translate([spacing,0,0])top();
}
base(); translate([spacing,0,0])top();
